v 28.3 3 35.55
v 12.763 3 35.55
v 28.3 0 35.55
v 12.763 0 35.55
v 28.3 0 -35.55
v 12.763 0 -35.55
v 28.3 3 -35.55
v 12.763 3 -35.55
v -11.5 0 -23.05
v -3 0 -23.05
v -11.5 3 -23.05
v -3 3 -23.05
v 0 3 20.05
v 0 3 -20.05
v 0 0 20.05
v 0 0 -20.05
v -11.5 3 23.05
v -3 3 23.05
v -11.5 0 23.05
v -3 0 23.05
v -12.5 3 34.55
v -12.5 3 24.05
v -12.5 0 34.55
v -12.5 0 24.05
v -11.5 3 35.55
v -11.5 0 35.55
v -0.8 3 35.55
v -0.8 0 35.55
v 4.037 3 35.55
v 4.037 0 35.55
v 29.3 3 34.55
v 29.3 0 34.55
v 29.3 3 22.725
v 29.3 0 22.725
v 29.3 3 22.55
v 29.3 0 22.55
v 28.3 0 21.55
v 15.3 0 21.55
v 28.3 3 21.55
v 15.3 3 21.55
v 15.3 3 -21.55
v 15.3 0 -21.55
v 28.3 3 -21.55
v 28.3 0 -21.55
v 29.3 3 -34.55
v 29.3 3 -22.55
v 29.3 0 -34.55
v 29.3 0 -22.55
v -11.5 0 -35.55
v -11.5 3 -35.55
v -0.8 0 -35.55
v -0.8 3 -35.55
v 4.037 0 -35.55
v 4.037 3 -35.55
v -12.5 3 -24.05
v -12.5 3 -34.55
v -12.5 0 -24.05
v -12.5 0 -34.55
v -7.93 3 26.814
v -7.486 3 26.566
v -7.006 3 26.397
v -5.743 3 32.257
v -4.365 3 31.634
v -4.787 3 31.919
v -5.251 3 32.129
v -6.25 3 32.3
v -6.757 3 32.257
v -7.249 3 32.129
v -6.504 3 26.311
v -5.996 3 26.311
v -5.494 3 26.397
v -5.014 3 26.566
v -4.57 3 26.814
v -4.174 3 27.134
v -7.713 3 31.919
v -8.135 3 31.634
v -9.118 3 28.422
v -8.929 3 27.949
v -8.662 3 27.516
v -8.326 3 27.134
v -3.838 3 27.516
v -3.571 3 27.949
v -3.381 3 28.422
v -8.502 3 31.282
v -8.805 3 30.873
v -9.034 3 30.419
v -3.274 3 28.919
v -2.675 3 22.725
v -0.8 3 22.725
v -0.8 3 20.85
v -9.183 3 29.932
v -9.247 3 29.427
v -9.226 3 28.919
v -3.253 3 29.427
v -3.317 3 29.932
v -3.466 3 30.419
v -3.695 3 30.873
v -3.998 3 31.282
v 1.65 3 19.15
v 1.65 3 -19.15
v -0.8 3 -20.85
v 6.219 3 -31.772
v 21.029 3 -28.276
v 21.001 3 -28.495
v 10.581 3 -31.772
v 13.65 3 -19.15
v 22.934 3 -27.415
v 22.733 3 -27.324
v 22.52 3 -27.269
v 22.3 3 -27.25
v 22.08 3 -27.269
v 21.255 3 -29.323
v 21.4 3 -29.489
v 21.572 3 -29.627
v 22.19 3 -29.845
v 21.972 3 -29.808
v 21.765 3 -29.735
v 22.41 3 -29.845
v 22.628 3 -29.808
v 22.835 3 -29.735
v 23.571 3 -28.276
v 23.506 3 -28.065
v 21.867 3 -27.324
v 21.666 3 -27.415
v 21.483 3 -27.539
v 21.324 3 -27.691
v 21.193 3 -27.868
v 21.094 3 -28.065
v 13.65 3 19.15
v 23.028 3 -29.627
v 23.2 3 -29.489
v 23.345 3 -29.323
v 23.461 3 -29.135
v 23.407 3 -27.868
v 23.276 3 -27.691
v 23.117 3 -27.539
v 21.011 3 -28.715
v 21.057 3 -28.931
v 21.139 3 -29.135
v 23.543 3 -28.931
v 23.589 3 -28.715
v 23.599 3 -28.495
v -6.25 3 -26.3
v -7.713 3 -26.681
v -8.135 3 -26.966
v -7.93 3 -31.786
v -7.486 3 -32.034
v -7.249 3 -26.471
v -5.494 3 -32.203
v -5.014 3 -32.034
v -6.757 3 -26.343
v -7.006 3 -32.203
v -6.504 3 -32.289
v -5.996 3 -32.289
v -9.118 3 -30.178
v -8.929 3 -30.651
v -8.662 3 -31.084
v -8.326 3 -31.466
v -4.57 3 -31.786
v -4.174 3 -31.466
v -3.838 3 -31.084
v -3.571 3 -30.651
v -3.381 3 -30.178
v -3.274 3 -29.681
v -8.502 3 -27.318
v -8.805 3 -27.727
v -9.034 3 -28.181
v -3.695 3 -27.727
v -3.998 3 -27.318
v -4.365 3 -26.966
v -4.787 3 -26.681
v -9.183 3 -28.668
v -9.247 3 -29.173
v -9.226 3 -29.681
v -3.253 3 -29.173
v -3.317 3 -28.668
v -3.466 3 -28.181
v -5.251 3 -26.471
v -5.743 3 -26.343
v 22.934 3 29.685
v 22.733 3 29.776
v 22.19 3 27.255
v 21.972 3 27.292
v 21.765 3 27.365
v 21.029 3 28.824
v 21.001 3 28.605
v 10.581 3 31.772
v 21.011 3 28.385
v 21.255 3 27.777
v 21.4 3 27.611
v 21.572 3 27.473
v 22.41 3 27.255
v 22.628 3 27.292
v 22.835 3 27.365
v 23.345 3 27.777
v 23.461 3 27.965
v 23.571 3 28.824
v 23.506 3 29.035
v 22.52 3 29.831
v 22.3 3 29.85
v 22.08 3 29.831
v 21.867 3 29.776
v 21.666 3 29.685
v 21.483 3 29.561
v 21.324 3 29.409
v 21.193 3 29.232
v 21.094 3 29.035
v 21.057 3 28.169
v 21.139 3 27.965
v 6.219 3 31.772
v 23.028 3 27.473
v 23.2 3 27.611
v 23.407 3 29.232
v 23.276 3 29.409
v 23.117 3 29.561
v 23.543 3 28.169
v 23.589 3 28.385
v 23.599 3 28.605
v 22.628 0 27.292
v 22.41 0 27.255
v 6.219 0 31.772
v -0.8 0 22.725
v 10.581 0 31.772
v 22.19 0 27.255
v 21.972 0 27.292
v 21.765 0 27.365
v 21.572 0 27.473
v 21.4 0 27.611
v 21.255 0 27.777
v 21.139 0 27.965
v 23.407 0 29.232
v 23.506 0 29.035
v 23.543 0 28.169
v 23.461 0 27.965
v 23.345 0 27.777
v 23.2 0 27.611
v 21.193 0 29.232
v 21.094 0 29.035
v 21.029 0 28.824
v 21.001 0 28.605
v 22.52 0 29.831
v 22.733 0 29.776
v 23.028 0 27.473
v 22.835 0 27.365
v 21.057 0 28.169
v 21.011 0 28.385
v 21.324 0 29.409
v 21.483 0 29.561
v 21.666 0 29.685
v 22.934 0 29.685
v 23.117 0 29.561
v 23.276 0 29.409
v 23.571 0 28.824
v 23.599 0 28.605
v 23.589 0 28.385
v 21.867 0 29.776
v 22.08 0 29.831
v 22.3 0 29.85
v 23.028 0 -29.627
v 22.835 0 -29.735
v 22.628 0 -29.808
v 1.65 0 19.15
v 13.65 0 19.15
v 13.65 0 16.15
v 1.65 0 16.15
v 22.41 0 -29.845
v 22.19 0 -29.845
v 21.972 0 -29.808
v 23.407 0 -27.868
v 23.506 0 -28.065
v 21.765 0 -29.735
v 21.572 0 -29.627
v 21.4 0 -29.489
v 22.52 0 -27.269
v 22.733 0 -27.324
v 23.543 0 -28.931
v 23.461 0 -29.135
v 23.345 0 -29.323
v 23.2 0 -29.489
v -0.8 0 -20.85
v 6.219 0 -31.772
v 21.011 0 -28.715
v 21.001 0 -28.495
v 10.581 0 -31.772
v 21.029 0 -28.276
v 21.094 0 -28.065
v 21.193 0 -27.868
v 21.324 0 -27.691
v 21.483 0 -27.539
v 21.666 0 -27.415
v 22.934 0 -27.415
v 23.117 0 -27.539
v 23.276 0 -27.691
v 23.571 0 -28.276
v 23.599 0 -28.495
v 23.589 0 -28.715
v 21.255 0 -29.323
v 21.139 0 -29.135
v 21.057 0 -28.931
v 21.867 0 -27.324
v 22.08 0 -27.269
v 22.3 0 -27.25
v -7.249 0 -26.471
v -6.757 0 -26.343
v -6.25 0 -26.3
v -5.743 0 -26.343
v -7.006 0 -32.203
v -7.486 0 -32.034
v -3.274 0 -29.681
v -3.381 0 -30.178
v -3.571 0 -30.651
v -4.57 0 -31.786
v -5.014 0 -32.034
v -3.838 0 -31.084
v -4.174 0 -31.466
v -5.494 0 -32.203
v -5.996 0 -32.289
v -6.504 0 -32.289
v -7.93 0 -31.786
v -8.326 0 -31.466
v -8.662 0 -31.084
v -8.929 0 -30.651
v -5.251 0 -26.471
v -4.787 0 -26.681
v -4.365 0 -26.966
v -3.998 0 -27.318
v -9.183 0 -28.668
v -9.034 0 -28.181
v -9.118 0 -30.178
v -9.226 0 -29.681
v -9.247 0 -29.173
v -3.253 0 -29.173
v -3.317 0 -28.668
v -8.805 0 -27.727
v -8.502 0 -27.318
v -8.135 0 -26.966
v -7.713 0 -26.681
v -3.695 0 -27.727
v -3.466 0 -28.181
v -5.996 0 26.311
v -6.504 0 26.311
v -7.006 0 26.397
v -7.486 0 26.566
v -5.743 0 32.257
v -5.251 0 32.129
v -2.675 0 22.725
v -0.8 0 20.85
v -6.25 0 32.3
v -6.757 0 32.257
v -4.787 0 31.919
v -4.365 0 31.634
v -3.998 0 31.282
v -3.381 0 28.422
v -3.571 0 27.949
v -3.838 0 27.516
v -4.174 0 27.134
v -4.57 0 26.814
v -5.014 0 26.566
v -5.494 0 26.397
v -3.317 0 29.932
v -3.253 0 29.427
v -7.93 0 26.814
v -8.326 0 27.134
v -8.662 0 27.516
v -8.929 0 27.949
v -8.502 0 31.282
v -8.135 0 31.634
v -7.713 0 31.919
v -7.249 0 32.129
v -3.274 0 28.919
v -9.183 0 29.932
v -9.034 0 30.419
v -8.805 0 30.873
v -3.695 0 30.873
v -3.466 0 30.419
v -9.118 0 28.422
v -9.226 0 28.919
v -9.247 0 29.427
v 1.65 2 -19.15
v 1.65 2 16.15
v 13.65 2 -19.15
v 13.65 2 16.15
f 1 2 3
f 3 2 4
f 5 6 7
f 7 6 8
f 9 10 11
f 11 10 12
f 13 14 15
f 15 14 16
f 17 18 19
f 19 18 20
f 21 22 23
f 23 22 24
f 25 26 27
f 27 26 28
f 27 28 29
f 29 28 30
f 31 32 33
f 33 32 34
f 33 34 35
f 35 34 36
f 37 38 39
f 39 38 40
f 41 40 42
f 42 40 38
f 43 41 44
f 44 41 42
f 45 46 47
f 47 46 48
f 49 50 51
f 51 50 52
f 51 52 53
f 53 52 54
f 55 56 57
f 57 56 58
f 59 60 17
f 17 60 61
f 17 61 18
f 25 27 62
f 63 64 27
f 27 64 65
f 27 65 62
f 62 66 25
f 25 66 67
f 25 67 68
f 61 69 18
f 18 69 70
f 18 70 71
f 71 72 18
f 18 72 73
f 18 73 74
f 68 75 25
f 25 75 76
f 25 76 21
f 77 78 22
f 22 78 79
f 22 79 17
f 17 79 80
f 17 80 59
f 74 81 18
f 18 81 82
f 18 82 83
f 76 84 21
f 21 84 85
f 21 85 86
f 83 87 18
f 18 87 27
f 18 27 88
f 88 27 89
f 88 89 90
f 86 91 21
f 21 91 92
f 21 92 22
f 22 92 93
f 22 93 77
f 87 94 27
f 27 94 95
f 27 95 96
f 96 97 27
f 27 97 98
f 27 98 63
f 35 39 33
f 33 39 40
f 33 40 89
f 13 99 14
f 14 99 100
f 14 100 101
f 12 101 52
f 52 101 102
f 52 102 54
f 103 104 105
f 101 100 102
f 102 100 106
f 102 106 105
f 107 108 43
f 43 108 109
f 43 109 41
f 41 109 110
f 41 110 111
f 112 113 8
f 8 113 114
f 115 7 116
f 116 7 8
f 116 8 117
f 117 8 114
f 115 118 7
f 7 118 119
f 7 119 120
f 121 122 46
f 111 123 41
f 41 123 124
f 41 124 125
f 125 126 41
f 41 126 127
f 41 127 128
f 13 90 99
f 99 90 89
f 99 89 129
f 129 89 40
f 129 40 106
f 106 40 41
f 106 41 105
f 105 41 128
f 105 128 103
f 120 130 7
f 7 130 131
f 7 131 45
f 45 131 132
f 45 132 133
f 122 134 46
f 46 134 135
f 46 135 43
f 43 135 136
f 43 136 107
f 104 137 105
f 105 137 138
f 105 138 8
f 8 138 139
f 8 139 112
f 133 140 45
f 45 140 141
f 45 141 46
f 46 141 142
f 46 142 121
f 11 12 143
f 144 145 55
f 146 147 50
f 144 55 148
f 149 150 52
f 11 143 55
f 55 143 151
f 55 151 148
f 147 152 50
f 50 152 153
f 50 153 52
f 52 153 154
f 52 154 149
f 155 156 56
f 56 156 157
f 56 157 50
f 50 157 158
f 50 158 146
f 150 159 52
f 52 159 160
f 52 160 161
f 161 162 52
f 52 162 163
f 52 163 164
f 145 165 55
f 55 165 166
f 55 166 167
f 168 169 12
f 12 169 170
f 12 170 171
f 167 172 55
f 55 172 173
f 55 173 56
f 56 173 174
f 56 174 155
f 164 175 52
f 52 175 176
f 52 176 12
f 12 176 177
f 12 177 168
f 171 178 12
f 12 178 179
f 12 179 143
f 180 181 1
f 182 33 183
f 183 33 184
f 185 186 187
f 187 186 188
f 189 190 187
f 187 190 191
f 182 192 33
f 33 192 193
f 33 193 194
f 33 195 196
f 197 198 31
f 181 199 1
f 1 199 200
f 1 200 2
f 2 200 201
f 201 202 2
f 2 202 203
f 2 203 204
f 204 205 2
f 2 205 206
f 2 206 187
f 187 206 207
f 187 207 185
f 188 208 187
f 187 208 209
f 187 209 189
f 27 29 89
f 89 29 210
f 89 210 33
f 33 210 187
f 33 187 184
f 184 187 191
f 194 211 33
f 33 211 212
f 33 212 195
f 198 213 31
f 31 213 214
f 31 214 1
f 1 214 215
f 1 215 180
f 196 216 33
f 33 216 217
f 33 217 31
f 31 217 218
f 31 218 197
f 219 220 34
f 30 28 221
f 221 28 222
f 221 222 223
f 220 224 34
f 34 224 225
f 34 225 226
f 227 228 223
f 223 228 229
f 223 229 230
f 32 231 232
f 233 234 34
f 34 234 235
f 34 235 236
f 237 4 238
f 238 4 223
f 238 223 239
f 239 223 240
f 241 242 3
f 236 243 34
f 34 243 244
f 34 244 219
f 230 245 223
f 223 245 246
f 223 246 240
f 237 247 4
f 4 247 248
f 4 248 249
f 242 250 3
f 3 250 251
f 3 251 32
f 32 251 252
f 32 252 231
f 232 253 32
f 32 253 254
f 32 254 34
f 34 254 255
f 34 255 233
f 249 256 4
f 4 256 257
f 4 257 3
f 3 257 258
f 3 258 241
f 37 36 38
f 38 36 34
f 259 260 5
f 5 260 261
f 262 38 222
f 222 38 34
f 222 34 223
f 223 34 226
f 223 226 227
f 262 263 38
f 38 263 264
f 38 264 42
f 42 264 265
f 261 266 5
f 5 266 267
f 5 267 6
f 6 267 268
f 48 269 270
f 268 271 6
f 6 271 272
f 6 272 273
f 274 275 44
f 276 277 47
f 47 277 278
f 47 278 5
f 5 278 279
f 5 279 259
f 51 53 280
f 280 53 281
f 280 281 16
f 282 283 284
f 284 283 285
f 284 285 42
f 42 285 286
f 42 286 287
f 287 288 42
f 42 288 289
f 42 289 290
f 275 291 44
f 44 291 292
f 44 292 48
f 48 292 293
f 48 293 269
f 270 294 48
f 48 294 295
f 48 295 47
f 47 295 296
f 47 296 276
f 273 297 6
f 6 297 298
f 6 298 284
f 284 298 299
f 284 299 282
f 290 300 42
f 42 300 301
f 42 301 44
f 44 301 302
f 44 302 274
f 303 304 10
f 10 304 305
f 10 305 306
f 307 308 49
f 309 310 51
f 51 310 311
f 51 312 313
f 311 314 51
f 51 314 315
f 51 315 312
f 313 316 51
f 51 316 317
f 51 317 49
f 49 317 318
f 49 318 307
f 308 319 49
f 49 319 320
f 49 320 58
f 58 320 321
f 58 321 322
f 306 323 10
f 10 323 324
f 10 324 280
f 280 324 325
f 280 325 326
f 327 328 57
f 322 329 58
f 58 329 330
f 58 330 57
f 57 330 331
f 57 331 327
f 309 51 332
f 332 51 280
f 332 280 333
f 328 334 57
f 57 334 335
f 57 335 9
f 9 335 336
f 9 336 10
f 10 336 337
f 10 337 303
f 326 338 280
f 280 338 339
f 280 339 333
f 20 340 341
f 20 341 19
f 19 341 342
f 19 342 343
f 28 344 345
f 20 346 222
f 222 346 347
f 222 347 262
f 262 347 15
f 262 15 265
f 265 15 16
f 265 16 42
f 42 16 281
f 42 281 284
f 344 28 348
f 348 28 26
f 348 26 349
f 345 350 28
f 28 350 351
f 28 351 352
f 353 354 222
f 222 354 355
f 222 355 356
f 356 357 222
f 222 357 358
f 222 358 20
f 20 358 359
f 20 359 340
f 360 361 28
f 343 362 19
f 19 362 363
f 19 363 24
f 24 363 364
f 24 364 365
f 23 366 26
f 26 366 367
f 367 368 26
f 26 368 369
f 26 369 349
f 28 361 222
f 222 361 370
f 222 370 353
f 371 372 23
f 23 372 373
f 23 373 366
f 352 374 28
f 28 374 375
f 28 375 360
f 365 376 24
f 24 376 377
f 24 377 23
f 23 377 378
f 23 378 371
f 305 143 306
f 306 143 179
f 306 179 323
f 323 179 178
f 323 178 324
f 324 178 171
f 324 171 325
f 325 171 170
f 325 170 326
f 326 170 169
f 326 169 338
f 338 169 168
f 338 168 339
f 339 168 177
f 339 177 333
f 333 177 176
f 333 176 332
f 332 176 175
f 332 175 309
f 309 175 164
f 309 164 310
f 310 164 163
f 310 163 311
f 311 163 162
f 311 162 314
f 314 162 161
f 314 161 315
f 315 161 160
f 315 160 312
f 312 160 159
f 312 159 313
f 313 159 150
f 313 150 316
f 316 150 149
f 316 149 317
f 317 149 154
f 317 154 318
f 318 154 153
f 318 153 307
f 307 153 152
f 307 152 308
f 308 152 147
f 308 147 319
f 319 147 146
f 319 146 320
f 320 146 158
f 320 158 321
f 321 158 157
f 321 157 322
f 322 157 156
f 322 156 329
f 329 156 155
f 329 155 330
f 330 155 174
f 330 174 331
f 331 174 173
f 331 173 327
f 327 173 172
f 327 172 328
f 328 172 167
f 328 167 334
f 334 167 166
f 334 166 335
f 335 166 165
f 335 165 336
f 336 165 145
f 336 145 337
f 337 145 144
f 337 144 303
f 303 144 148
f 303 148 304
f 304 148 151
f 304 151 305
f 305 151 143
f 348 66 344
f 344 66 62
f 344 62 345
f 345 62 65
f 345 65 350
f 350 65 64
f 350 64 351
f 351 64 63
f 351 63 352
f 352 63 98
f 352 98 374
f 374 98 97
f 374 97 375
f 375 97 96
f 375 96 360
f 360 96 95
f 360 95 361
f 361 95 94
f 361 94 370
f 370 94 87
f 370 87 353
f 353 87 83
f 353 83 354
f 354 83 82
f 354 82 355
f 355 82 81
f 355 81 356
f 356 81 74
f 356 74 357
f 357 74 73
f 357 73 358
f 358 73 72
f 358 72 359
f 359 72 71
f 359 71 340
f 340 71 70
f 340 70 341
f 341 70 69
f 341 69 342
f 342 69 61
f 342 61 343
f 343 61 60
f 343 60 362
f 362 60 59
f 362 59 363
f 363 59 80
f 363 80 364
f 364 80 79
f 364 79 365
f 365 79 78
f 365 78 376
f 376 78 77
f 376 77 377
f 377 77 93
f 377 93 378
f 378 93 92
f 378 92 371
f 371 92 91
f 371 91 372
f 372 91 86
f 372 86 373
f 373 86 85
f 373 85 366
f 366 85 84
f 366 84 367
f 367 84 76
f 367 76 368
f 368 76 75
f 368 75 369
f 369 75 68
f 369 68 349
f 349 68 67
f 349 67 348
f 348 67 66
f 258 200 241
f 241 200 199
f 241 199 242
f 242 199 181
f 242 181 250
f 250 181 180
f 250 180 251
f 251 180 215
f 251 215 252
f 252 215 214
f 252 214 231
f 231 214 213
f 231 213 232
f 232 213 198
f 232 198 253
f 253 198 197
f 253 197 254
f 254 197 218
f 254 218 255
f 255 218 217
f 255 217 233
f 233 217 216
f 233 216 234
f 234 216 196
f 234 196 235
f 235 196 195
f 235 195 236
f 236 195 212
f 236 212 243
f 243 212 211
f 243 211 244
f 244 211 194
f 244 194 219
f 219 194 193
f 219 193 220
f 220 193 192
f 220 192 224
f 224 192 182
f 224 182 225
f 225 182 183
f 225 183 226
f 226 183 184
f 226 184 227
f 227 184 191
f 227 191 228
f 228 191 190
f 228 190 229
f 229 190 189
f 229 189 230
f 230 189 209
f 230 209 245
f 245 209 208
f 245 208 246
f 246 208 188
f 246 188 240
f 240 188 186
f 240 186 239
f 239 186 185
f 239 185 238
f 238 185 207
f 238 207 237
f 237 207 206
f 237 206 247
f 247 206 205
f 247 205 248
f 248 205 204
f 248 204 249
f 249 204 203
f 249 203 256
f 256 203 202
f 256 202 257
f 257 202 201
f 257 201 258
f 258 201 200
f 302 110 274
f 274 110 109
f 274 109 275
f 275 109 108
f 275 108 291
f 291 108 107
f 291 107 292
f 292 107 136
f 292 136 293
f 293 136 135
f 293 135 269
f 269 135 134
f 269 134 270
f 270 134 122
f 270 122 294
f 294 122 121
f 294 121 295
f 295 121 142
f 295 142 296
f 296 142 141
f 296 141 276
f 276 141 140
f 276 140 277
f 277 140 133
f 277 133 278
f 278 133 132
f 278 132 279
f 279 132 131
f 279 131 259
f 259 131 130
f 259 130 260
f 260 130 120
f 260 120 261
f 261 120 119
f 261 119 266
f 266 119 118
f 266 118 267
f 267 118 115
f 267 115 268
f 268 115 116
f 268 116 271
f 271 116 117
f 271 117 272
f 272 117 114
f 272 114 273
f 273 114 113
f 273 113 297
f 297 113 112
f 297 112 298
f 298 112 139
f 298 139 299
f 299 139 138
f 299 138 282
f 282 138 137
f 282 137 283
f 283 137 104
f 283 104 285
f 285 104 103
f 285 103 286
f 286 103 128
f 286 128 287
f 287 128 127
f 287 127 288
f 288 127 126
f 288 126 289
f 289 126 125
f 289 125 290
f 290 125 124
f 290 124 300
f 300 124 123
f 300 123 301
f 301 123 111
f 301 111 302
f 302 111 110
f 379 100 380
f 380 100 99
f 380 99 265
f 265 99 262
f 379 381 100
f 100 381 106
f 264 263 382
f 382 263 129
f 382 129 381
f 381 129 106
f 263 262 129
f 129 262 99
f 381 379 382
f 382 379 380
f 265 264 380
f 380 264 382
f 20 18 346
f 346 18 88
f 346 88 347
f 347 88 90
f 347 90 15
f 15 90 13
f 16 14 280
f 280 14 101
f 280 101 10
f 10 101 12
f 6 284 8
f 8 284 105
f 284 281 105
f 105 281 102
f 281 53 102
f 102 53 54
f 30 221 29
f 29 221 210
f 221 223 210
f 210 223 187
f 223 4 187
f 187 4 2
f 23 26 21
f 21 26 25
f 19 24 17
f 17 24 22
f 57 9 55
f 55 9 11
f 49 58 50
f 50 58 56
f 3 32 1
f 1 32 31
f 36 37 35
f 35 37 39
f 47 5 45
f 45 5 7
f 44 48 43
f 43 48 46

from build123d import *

# Parameters (mm, degrees)
BOSS_EXTRUDE1_DEPTH = 3
SKETCH2_R           = 3
SKETCH2_R_2         = 1.3
CUT_EXTRUDE1_DEPTH  = 47.16592358
SKETCH3_W           = 12
SKETCH3_H           = 38.3
CUT_EXTRUDE2_DEPTH  = 1
SKETCH4_W           = 12
SKETCH4_H           = 3
CUT_EXTRUDE3_DEPTH  = 47.111739286
CHAMFER1_SIZE       = 3
CUT_EXTRUDE4_DEPTH  = 47.16592358
CHAMFER2_SIZE       = 1


with BuildPart() as part:
    # Sketch1 → Boss-Extrude1 (new body)
    with BuildSketch(Plane(origin=(0, 0, 0), x_dir=(1, 0, 0), z_dir=(0, 1, 0))):
        Polygon((0, 23.05), (0, -23.05), (-12.5, -23.05), (-12.5, -35.55), (29.3, -35.55), (29.3, -21.55), (15.3, -21.55), (15.3, 21.55), (29.3, 21.55), (29.3, 35.55), (-12.5, 35.55), (-12.5, 23.05), align=None)
    extrude(amount=BOSS_EXTRUDE1_DEPTH)

    # Sketch2 → Cut-Extrude1 (cut, through all)
    with BuildSketch(Plane(origin=(0, 3, 0), x_dir=(1, 0, 0), z_dir=(0, 1, 0))):
        with Locations(Location((-6.25, 29.3, 0), (0, 0, 270))):
            Circle(SKETCH2_R)
        with Locations(Location((-6.25, -29.3, 0), (0, 0, 270))):
            Circle(SKETCH2_R)
        with Locations(Location((22.3, -28.55, 0), (0, 0, 270))):
            Circle(SKETCH2_R_2)
        with Locations(Location((22.3, 28.55, 0), (0, 0, 270))):
            Circle(SKETCH2_R_2)
    extrude(amount=-CUT_EXTRUDE1_DEPTH, mode=Mode.SUBTRACT)

    # Sketch3 → Cut-Extrude2 (cut)
    with BuildSketch(Plane(origin=(0, 3, 0), x_dir=(1, 0, 0), z_dir=(0, 1, 0))):
        with Locations((7.65, 0)):
            Rectangle(SKETCH3_W, SKETCH3_H)
    extrude(amount=-CUT_EXTRUDE2_DEPTH, mode=Mode.SUBTRACT)

    # Sketch4 → Cut-Extrude3 (cut, through all)
    with BuildSketch(Plane(origin=(0, 2, 0), x_dir=(1, 0, 0), z_dir=(0, 1, 0))):
        with Locations((7.65, -17.65)):
            Rectangle(SKETCH4_W, SKETCH4_H)
    extrude(amount=-CUT_EXTRUDE3_DEPTH, mode=Mode.SUBTRACT)

    # Chamfer1
    chamfer1_edges = [part.edges().sort_by_distance(p)[0] for p in [
        (0, 1.5, 23.05),
        (0, 1.5, -23.05),
    ]]
    chamfer(chamfer1_edges, length=CHAMFER1_SIZE)

    # Sketch5 → Cut-Extrude4 (cut, through all)
    with BuildSketch(Plane(origin=(0, 3, 0), x_dir=(1, 0, 0), z_dir=(0, 1, 0))):
        Polygon((4.037233657, -35.55), (6.218616828, -39.328266484), (10.581383172, -39.328266484), (12.762766343, -35.55), (10.581383172, -31.771733516), (6.218616828, -31.771733516), align=None)
        Polygon((4.037233657, 35.55), (6.218616828, 31.771733516), (10.581383172, 31.771733516), (12.762766343, 35.55), (10.581383172, 39.328266484), (6.218616828, 39.328266484), align=None)
    extrude(amount=-CUT_EXTRUDE4_DEPTH, mode=Mode.SUBTRACT)

    # Chamfer2
    chamfer2_edges = [part.edges().sort_by_distance(p)[0] for p in [
        (-12.5, 1.5, -23.05),
        (-12.5, 1.5, -35.55),
        (29.3, 1.5, -35.55),
        (29.3, 1.5, -21.55),
        (29.3, 1.5, 21.55),
        (29.3, 1.5, 35.55),
        (-12.5, 1.5, 35.55),
        (-12.5, 1.5, 23.05),
    ]]
    chamfer(chamfer2_edges, length=CHAMFER2_SIZE)


solid = part.part
